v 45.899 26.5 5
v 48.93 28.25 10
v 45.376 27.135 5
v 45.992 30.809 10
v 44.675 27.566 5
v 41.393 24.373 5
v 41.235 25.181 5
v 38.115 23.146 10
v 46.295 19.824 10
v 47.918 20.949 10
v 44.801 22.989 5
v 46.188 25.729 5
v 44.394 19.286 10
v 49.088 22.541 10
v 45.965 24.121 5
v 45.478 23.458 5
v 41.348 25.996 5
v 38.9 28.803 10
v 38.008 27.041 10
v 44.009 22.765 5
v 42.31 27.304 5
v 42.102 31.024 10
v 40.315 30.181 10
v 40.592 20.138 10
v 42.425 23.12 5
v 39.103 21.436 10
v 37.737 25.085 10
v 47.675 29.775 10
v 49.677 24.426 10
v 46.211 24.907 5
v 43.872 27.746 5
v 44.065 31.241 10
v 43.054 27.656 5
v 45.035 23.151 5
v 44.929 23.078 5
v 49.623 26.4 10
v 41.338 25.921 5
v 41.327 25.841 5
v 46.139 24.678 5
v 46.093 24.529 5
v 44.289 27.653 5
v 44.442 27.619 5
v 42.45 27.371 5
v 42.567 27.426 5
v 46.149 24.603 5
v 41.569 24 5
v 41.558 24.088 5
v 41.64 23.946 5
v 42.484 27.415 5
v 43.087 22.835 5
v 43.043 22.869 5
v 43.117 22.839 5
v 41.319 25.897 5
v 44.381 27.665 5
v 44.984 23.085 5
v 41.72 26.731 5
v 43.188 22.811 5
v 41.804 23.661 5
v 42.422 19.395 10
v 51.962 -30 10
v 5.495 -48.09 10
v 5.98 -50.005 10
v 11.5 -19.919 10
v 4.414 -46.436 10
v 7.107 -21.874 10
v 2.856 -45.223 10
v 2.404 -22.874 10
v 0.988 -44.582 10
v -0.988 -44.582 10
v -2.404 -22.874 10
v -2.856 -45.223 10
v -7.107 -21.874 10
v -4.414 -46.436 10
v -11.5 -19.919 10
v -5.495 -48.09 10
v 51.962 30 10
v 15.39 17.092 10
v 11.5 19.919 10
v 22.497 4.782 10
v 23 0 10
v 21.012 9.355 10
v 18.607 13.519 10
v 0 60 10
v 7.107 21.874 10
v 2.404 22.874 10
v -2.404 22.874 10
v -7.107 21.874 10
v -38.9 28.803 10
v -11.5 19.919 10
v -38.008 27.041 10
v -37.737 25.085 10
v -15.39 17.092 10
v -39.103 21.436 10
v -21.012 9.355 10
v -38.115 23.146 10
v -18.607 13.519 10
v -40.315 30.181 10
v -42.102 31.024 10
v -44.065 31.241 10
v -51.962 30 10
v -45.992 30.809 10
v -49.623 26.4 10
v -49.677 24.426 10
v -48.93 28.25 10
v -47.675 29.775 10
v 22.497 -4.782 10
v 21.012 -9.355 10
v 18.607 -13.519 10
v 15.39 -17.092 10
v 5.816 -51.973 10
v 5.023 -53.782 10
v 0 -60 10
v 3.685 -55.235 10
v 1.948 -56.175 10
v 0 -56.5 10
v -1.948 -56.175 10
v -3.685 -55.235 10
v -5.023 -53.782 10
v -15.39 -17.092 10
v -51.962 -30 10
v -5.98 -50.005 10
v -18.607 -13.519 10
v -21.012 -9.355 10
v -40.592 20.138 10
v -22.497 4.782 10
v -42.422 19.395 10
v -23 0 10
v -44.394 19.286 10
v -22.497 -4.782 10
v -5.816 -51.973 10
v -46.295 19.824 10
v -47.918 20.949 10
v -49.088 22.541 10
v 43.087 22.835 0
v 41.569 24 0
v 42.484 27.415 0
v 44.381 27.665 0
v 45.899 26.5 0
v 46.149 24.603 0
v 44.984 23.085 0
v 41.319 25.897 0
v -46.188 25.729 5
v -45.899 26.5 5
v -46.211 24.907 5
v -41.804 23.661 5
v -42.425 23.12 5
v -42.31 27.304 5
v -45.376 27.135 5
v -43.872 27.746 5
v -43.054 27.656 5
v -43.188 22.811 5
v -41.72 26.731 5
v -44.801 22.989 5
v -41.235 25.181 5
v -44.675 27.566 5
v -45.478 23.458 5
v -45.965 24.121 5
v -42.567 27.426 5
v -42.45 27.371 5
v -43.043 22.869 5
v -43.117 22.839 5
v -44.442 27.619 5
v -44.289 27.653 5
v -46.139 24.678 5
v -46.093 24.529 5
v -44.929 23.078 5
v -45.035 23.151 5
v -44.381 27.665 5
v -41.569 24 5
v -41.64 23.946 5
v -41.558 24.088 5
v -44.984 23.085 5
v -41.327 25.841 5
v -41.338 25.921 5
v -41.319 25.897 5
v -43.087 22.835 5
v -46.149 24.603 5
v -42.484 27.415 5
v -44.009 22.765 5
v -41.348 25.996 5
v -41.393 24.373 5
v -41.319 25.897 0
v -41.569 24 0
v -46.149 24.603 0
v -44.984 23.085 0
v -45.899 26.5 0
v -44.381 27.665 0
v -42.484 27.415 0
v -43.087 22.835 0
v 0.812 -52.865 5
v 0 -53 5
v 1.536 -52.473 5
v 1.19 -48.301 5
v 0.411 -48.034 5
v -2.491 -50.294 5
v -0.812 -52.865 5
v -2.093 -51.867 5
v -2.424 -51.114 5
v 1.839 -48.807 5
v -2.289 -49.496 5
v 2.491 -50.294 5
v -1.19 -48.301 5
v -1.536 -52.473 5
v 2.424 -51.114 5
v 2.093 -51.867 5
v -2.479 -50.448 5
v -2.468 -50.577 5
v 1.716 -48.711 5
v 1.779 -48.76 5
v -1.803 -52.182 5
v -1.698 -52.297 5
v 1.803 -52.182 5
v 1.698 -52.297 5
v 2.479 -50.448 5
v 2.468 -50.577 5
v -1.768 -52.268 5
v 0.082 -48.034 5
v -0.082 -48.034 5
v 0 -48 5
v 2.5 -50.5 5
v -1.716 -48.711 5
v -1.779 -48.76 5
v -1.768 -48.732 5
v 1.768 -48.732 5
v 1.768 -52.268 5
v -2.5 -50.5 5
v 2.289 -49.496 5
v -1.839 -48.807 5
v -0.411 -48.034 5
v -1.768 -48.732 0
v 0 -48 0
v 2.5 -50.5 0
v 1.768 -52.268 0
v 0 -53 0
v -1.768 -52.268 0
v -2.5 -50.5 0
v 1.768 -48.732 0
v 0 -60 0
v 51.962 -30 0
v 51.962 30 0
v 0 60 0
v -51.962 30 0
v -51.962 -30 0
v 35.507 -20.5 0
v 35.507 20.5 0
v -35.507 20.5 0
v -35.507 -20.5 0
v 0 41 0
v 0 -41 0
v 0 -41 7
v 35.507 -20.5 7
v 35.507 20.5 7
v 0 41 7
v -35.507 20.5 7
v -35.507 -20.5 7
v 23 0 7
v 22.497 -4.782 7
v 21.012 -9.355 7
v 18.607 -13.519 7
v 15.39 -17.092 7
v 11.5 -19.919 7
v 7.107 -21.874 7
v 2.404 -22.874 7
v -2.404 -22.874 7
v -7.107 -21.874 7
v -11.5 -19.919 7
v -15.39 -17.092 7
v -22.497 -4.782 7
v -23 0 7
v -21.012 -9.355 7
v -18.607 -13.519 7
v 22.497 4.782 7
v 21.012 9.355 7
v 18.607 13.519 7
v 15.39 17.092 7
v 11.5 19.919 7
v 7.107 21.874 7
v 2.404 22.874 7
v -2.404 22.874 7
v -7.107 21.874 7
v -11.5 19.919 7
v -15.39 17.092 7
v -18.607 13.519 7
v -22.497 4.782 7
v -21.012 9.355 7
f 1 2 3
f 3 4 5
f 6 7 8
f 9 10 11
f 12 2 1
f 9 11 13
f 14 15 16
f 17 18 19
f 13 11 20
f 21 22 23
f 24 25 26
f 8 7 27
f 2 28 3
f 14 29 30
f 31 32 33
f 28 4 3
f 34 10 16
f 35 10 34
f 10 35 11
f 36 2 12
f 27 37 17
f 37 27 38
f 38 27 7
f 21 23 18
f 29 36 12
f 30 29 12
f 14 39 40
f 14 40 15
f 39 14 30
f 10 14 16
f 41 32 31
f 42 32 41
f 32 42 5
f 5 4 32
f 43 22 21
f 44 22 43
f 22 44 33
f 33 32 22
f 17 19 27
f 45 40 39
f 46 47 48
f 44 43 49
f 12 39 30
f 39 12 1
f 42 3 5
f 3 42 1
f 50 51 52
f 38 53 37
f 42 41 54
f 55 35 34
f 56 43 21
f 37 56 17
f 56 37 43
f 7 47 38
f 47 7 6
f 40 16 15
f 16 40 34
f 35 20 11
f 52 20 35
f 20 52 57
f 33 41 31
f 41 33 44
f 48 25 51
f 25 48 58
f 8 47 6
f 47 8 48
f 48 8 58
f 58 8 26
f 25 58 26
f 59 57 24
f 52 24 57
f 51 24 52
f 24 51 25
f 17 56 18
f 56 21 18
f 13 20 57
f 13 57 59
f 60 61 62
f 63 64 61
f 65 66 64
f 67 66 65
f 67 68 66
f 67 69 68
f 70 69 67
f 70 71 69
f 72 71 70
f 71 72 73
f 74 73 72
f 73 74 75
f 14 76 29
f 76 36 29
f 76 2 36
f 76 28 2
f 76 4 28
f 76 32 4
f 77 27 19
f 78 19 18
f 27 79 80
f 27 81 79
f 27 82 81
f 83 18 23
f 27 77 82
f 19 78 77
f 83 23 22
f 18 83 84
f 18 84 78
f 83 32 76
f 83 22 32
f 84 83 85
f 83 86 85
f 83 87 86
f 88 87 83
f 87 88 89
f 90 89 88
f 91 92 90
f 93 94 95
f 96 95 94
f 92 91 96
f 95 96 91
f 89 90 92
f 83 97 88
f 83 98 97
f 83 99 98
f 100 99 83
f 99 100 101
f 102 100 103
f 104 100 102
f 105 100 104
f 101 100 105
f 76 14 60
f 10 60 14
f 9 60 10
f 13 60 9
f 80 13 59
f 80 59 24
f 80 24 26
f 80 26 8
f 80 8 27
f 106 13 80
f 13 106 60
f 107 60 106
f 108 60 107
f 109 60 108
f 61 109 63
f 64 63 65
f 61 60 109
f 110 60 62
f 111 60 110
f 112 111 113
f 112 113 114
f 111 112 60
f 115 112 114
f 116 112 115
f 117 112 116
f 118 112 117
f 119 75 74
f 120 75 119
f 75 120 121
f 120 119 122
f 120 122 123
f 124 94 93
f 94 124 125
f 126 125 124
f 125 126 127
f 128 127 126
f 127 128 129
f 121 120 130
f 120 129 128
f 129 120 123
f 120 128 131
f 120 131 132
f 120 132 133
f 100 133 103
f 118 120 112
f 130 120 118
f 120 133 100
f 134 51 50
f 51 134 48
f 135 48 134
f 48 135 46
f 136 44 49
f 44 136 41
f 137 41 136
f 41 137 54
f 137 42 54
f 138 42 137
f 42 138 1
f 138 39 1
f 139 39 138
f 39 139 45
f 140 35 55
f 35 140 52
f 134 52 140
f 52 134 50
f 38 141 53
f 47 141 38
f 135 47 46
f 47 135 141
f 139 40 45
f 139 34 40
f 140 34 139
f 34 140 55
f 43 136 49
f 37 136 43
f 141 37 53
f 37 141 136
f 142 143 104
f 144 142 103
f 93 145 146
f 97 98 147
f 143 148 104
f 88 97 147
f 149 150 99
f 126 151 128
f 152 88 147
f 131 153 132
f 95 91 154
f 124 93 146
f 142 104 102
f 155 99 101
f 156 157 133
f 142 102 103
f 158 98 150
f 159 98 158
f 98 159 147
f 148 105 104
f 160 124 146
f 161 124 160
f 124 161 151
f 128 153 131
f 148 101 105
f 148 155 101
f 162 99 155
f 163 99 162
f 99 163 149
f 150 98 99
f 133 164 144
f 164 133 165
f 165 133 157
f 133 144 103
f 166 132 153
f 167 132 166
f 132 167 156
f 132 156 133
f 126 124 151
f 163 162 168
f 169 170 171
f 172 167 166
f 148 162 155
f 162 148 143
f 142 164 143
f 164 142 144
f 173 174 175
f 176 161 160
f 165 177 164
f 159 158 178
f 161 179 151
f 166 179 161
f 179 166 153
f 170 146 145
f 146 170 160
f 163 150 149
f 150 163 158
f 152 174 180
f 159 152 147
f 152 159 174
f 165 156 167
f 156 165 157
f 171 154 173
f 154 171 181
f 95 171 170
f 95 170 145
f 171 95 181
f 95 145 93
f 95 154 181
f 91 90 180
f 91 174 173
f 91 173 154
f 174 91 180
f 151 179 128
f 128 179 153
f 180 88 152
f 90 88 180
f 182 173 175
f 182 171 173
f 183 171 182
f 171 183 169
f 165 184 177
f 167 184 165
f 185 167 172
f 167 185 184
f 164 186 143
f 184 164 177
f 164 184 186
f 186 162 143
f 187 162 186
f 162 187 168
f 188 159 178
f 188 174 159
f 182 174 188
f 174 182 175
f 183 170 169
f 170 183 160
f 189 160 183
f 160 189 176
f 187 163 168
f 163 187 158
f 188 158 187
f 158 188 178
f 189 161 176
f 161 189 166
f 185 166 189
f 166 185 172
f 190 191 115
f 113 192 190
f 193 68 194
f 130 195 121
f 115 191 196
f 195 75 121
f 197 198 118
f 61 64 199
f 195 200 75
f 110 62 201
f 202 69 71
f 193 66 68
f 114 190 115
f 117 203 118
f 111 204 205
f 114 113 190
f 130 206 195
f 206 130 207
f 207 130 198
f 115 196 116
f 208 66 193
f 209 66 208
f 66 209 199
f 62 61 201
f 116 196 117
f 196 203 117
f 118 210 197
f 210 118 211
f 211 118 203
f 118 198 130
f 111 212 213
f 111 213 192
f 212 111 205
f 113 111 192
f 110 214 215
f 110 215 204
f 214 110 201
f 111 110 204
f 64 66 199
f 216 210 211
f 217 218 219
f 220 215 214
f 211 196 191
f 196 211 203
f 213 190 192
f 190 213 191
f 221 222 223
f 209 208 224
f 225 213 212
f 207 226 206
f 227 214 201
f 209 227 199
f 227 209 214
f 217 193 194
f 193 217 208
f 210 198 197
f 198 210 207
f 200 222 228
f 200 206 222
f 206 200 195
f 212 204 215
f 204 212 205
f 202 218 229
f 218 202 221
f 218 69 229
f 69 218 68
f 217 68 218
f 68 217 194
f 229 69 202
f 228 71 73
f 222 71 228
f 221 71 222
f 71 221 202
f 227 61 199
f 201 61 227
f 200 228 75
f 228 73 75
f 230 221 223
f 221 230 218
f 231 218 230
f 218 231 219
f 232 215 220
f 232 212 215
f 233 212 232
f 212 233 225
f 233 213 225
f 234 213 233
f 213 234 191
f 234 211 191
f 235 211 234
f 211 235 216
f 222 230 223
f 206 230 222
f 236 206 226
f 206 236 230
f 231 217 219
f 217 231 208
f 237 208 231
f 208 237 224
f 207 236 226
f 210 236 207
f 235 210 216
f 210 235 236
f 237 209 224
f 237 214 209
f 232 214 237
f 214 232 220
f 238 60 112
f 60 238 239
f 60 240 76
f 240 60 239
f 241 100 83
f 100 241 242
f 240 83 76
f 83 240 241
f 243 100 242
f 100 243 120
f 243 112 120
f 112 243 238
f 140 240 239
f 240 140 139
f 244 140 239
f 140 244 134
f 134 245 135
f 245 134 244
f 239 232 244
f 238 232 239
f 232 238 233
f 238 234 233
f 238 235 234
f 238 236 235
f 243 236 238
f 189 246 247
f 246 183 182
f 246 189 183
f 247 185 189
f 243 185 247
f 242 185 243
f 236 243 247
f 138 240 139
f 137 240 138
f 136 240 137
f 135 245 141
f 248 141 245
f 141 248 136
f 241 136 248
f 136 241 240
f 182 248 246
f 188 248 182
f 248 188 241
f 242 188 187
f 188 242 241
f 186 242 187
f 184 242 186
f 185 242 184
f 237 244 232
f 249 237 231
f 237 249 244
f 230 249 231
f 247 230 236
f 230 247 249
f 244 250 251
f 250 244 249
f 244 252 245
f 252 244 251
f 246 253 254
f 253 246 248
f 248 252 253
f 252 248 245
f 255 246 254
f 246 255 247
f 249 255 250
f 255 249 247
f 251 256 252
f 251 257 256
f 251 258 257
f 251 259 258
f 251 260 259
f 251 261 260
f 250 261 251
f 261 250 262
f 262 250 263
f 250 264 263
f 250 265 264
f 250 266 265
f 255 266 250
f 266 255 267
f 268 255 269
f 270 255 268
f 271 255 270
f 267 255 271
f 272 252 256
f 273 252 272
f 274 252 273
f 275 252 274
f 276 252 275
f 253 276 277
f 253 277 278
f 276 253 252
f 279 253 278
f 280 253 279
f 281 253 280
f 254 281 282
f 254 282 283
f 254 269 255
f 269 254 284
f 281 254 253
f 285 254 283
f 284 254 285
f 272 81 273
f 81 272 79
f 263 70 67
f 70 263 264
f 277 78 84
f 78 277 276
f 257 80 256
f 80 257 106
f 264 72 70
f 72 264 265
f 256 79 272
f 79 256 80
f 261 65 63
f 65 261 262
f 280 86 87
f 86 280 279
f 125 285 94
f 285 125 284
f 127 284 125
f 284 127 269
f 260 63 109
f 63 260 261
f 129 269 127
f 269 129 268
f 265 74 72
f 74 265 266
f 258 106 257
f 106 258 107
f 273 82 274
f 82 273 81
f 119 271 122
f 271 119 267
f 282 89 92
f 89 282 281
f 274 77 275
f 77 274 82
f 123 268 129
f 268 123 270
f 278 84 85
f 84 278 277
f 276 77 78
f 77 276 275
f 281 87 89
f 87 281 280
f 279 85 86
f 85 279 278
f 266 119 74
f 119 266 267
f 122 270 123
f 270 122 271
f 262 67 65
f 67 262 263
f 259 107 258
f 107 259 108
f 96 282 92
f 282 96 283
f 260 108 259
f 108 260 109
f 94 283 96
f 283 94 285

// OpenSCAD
// file: ../../../assets/components/fastener_holes.scad
/*
    Intended to make space for a fastener.

    parameters:
    -head           a vector [head length, head radius]
    -bore           a vector [bore length, bore radius]
    -countersink    countersink length, requires head radius and bore radius
*/

module fastener_hole(
    head = [0, 5],
    bore = [0, 3],
    countersink = 5
) {
    if (head[0] && head[1])
    cylinder(h = head[0], r = head[1], center = false);
    translate([0,0,-countersink]) {
        if (countersink)
        cylinder(h = countersink, r1 = bore[1], r2 = head[1], center = false);

        translate([0,0,-bore[0]]) {
            if (bore[0] && bore[1])
            cylinder(h = bore[0], r = bore[1], center = false);
        }
    }
}

module fastener_block(
    size,
    head = [0, 0],
    bore = [0, 0],
    countersink = 0
) {

    fastener_hole(head = head, bore = bore, countersink = countersink);
    translate([size.x, 0])
    fastener_hole(head = head, bore = bore, countersink = countersink);
    translate([size.x, size.y])
    fastener_hole(head = head, bore = bore, countersink = countersink);
    translate([0, size.y])
    fastener_hole(head = head, bore = bore, countersink = countersink);

}

module fastener_radial(
    radius,
    amount,
    head = [0, 6],
    bore = [0, 3],
    countersink = 5
) {
    step = 360 / amount;
    for(i = [0:amount]){
        rotate(i * step, [0,0,1])
        translate([radius,0,0]) 
        fastener_hole(head=head, bore=bore, countersink=countersink);
    }
}

// showcase
fastener_hole(
    head = [3,5],
    bore = [7,2],
    countersink = 3
);

translate([100, 0, 0]) 
fastener_block(
    size = [20, 40],
    head = [3, 5],
    bore = [10, 2],
    countersink = 0
);

translate([-150, 0, 0]) 
fastener_radial(
    radius = 50,
    amount = 8,
    head = [0, 7],
    bore = [0, 3],
    countersink = 5
);
// file: ../../../assets/components/hexagon.scad
// Base shape
module Hexagon(r, height){
    rotate([0,0,30])
    cylinder($fn=6, r=r, h=height);
}
// main file
use <../../../assets/components/hexagon.scad>
use <../../../assets/components/fastener_holes.scad>

flask_base_radius=41; // for a long diagonal of 7 cm
flask_radius=23;
flask_height=7;
total_radius=60;
total_height=10;
fastener_radius = flask_base_radius + (total_radius - flask_base_radius) / 2;
fastener_amount = 3;
head = [0, 6];
bore = [10, 2.5];

difference() {
    difference() {

        difference() {
            Hexagon(r = total_radius, height = total_height);
            Hexagon(r = flask_base_radius, height = flask_height);
        }
        cylinder(h = total_height, r = flask_radius);
    }
    translate([0,0,total_height])
    rotate(30)
    fastener_radial(
        radius = fastener_radius,
        amount = fastener_amount,
        head = head,
        bore = bore
    );

}
